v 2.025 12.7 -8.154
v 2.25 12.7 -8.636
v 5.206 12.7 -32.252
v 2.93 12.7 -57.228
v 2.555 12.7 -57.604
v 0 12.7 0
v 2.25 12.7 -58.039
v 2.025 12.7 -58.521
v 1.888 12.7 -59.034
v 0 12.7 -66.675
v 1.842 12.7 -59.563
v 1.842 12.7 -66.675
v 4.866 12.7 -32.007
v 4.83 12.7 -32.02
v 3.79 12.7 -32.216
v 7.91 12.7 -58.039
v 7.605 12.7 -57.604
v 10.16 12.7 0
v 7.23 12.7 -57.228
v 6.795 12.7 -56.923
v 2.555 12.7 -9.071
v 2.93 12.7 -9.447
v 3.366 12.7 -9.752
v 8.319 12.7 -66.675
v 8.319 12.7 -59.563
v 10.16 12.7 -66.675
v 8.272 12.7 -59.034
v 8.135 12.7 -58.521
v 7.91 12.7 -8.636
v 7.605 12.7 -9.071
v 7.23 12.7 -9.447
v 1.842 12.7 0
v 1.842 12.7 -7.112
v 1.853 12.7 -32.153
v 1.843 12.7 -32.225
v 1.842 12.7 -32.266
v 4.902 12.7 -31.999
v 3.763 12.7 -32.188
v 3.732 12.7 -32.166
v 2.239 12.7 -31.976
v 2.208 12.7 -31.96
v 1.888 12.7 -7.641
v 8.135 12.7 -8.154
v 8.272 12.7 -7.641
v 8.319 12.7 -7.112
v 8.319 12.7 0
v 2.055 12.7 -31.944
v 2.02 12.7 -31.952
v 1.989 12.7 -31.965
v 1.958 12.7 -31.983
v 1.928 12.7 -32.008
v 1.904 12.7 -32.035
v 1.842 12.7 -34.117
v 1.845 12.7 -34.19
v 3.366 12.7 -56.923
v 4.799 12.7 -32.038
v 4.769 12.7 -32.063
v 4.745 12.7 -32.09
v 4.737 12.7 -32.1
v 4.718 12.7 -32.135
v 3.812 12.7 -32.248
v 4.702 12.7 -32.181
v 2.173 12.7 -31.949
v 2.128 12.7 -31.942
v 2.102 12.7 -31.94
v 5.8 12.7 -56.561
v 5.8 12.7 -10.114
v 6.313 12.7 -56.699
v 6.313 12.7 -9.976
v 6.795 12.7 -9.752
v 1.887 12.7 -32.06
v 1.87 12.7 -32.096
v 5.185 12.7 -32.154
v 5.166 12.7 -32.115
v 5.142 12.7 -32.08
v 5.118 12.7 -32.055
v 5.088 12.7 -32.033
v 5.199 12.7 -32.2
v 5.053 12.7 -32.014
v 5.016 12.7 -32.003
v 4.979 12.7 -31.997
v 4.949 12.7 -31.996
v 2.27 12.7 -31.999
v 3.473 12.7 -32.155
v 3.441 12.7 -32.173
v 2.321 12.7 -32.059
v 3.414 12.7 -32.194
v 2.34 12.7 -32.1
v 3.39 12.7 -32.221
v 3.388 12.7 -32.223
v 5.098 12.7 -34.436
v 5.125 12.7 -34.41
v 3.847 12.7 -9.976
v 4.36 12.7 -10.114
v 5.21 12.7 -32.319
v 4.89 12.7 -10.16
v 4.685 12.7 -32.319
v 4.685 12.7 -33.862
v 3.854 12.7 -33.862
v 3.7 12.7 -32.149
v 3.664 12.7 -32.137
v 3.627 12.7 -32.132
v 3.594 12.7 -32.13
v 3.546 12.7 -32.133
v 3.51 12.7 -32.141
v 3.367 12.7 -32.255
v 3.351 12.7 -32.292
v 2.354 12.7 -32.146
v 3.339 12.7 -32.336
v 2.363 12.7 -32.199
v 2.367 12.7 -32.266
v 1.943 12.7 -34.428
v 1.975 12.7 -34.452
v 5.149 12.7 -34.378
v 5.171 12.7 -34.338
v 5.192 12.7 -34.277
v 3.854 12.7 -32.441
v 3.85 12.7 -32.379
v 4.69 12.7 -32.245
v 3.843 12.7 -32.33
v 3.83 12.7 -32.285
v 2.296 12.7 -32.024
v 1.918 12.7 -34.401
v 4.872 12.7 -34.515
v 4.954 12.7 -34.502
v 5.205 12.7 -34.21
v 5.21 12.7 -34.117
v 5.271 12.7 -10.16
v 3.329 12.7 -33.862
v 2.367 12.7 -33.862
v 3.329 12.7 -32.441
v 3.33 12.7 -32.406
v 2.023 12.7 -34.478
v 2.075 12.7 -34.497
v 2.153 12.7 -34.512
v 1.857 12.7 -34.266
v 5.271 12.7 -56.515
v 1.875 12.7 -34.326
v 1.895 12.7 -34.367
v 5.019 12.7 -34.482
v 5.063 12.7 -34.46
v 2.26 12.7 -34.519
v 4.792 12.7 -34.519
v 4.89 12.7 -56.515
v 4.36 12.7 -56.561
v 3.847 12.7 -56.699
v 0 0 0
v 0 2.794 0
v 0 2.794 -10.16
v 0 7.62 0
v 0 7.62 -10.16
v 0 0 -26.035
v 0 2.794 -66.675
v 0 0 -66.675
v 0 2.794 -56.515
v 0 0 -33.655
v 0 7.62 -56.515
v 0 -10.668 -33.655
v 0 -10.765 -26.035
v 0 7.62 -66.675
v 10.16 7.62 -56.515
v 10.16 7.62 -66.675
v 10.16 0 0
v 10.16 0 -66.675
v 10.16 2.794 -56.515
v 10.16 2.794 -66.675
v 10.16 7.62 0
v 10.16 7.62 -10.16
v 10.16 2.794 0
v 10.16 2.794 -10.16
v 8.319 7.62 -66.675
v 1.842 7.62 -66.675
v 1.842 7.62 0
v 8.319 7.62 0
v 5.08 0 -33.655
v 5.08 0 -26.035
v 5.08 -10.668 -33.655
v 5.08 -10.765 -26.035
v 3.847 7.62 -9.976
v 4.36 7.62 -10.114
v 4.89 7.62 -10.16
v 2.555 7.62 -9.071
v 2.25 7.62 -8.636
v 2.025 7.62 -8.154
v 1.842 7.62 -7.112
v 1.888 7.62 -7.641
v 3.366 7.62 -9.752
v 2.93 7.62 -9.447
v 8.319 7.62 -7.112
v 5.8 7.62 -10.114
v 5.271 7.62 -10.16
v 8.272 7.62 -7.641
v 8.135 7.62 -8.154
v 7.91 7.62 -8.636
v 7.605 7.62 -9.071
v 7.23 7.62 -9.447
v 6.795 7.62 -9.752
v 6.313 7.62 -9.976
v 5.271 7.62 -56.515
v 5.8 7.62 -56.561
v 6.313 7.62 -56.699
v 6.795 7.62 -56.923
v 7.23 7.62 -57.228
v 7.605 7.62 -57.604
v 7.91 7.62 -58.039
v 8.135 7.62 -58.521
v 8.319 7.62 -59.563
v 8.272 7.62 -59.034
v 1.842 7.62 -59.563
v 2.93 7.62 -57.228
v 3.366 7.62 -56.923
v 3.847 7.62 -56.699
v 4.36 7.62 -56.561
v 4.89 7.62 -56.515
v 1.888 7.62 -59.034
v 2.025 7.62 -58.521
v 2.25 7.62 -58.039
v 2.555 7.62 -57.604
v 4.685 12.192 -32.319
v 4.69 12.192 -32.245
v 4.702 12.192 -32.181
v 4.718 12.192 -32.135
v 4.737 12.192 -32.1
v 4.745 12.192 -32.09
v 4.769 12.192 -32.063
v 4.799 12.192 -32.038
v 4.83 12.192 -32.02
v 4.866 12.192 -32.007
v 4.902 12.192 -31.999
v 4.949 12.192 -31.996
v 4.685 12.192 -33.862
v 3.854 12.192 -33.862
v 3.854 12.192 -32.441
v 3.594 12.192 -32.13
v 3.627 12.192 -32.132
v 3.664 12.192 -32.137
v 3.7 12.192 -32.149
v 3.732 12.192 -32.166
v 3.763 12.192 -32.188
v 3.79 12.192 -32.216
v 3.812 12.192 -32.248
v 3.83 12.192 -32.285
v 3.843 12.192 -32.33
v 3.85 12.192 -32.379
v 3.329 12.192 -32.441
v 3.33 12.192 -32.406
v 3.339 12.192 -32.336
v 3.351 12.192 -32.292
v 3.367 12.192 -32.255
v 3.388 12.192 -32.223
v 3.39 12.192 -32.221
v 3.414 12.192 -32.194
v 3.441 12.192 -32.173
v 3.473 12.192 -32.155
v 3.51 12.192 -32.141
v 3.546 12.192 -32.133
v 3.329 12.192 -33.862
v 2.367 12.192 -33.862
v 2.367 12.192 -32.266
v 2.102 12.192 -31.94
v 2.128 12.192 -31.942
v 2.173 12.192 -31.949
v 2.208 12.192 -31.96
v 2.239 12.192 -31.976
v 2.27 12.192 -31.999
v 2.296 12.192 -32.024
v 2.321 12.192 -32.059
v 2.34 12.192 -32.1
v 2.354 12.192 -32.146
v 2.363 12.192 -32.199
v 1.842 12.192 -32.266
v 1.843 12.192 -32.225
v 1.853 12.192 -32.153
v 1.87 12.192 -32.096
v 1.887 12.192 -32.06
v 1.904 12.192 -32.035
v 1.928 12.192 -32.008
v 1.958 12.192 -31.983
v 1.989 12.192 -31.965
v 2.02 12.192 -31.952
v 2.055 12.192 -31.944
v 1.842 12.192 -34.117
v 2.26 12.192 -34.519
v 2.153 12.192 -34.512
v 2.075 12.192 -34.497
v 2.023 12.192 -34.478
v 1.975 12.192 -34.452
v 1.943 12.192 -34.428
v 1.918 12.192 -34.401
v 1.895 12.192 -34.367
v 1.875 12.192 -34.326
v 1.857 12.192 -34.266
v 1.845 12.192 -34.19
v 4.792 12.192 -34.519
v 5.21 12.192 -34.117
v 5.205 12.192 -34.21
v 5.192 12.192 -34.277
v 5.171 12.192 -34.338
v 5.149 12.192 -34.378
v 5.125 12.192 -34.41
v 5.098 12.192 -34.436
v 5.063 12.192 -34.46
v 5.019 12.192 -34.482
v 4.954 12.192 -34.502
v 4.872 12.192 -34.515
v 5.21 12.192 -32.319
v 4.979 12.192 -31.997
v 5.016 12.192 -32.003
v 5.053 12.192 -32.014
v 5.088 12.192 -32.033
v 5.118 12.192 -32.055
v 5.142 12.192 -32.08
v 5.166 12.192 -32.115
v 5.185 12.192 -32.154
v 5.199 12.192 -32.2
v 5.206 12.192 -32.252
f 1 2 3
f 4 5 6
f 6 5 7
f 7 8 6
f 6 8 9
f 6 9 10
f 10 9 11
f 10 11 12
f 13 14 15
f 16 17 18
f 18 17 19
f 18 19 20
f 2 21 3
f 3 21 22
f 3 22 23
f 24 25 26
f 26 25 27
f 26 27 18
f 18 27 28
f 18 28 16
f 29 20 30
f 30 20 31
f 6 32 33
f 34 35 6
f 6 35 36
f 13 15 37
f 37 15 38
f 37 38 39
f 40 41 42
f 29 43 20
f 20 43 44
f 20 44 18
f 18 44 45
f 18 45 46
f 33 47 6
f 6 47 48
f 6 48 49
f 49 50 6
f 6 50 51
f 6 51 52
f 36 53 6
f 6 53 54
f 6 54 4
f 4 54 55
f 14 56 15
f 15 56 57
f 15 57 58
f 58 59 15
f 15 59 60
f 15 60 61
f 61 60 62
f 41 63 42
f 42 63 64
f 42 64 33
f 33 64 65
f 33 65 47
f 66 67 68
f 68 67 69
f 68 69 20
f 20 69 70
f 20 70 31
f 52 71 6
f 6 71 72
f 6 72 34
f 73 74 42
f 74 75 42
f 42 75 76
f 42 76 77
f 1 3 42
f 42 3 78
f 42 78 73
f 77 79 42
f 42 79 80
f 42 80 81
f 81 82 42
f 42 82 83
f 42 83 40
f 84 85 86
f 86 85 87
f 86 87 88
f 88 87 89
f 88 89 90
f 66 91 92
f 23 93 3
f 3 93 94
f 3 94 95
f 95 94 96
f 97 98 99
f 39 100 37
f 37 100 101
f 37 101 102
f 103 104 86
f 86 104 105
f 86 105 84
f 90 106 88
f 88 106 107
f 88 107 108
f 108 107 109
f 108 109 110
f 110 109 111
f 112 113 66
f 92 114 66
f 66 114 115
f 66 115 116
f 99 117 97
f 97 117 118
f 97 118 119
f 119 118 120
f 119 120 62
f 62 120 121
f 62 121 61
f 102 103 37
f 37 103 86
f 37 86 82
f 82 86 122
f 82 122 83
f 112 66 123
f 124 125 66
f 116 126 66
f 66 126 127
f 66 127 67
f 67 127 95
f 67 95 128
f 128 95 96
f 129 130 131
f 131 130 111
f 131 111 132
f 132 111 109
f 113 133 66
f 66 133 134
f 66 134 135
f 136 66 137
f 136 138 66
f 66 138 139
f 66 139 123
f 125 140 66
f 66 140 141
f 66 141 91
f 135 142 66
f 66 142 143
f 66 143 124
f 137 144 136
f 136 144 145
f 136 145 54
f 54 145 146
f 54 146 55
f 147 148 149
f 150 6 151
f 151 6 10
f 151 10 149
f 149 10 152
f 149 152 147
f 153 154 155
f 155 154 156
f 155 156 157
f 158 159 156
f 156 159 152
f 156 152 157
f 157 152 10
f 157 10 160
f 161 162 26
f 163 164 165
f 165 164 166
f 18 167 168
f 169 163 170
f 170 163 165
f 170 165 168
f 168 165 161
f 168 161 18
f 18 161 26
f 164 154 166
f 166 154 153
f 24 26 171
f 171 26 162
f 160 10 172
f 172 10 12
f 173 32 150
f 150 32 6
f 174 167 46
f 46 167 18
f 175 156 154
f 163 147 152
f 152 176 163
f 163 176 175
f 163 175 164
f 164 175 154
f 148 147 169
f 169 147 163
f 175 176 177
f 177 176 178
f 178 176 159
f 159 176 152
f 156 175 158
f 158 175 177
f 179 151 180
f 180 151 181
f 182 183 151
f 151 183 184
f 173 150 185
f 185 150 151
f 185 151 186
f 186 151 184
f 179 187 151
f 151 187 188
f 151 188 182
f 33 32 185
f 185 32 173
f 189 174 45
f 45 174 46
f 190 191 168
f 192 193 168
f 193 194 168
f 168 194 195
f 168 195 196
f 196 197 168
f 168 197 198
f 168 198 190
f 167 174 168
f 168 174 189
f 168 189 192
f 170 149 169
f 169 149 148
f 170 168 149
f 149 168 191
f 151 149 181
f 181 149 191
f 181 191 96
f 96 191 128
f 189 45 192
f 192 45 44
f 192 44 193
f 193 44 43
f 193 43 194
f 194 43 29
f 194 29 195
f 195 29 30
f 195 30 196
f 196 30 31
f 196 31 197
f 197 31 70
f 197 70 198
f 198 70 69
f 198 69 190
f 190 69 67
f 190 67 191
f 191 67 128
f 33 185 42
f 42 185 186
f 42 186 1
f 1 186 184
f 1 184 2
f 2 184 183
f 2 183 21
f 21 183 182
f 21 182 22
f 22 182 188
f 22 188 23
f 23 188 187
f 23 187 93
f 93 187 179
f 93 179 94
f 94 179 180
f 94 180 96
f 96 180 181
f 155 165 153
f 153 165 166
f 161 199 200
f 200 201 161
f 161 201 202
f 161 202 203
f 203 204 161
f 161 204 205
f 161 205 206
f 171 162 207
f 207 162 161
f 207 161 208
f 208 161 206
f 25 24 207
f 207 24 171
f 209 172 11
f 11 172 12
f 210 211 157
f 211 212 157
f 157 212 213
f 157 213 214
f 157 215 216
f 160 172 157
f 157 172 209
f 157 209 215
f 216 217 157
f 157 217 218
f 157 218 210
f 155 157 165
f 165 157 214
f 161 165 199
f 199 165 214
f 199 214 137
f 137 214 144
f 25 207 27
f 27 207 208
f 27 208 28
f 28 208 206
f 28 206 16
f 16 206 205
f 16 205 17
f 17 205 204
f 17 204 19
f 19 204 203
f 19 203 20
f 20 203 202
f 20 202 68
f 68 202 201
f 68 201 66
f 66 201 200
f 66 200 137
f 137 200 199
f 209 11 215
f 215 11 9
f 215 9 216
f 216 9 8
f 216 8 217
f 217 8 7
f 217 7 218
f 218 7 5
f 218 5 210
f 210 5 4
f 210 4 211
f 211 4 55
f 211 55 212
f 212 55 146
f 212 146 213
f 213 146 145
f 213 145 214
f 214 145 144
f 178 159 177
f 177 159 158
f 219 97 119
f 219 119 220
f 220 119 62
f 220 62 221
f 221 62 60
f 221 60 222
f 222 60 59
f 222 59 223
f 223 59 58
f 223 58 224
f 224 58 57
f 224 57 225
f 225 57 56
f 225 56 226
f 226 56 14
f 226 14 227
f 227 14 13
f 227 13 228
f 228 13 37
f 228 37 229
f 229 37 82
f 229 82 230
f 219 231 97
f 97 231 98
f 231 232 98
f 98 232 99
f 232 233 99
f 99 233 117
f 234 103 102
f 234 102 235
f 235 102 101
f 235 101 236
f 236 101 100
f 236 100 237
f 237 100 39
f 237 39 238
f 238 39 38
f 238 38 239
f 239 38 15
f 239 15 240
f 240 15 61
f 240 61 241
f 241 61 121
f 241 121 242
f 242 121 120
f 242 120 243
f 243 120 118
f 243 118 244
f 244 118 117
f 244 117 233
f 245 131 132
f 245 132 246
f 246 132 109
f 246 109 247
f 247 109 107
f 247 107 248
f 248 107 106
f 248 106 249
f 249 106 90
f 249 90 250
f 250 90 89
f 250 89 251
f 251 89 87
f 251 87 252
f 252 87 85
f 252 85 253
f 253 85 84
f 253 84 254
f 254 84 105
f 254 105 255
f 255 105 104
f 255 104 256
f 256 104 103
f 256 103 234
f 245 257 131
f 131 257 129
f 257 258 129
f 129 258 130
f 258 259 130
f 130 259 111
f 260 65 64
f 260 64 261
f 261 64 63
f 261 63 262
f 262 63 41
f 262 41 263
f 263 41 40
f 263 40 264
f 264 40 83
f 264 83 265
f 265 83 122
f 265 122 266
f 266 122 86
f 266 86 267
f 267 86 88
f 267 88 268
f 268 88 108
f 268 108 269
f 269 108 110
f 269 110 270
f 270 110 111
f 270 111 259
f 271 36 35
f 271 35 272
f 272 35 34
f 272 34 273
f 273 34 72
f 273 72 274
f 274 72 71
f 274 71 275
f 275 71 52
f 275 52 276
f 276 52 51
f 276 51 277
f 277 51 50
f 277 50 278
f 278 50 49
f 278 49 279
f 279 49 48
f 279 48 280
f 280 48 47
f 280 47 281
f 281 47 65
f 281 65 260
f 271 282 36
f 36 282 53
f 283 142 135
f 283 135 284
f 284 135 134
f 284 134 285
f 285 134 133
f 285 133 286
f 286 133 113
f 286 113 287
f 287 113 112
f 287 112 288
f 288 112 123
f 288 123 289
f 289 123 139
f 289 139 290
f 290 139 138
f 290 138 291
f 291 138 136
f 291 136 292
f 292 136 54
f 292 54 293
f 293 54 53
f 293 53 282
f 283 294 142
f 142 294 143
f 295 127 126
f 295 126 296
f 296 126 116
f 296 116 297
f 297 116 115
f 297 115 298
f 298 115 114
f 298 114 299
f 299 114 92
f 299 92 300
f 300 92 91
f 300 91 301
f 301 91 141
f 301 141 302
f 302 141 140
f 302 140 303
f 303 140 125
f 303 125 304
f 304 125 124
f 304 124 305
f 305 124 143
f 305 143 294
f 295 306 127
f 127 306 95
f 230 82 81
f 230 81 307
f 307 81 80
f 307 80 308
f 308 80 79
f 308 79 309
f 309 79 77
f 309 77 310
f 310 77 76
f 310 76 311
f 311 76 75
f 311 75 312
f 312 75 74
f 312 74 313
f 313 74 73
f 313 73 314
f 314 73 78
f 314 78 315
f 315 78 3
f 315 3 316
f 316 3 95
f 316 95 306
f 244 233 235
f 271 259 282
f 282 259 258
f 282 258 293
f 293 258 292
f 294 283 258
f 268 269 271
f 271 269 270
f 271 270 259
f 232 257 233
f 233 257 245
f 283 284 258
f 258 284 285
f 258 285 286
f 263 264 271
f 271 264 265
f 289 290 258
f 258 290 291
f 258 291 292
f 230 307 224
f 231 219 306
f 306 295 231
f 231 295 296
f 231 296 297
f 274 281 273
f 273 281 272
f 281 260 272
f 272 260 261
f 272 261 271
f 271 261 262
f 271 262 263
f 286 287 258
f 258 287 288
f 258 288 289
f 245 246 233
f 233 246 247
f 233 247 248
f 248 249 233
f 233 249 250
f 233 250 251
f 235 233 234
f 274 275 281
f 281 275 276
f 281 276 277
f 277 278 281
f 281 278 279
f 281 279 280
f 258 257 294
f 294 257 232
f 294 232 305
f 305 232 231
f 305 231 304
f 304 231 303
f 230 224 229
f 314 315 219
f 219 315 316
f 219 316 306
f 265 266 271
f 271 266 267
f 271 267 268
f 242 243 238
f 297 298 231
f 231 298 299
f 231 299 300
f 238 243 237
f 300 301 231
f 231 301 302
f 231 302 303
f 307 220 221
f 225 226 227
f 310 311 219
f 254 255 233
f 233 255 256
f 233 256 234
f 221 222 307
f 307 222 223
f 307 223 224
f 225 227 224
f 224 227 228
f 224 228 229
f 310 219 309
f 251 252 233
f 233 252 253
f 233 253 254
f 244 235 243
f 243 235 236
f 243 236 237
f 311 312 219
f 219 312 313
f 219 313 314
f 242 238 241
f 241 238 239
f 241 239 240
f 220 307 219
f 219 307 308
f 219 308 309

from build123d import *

# Parameters (mm, degrees)
SKETCH2_W            = 10.16
SKETCH2_H            = 66.675
BOSS_EXTRUDE1_DEPTH  = 12.7
SKETCH3_W            = 5.08
SKETCH3_H            = 6.35
SKETCH3_H_2          = 1.27
BOSS_EXTRUDE2_DEPTH  = 12.7
CUT_EXTRUDE1_DEPTH   = 10.16
FILLET2_R            = 3.048
FILLET2_OF_MIRROR1_R = 3.048
CUT_EXTRUDE4_DEPTH   = 69.629958655
CUT_EXTRUDE5_DEPTH   = 0.508


with BuildPart() as part:
    # Sketch2 → Boss-Extrude1 (new body)
    with BuildSketch(Plane(origin=(0, 0, 0), x_dir=(1, 0, 0), z_dir=(0, 1, 0))):
        with Locations((5.08, 33.3375)):
            Rectangle(SKETCH2_W, SKETCH2_H)
    extrude(amount=BOSS_EXTRUDE1_DEPTH)

    # Sketch3 → Boss-Extrude2 (add)
    with BuildSketch(Plane.XZ):
        with Locations((2.54, -29.21)):
            Rectangle(SKETCH3_W, SKETCH3_H)
        with Locations((2.54, -33.02)):
            Rectangle(SKETCH3_W, SKETCH3_H_2)
    extrude(amount=BOSS_EXTRUDE2_DEPTH)

    # Sketch4 → Cut-Extrude1 (cut)
    with BuildSketch(Plane.XY):
        Polygon((0, 7.62), (1.8415, 7.62), (1.8415, 12.7), (8.3185, 12.7), (8.3185, 7.62), (10.16, 7.62), (10.16, 2.794), (0, 2.794), align=None)
    cut_extrude1 = extrude(amount=-CUT_EXTRUDE1_DEPTH, mode=Mode.SUBTRACT)

    # Fillet2
    fillet2_edges = [part.edges().sort_by_distance(p)[0] for p in [
        (1.8415, 10.16, -10.16),
        (8.3185, 10.16, -10.16),
    ]]
    fillet(fillet2_edges, radius=FILLET2_R)

    # Mirror1: Cut-Extrude1 across plane
    add(cut_extrude1.mirror(Plane.XY.offset(-33.3375)), mode=Mode.SUBTRACT)

    # Fillet2 of Mirror1
    fillet2_of_mirror1_edges = [part.edges().sort_by_distance(p)[0] for p in [
        (1.8415, 10.16, -56.515),
        (8.3185, 10.16, -56.515),
    ]]
    fillet(fillet2_of_mirror1_edges, radius=FILLET2_OF_MIRROR1_R)

    # Sketch5 → Cut-Extrude4 (cut, through all)
    with BuildSketch(Plane.ZY):
        with BuildLine():
            Line((-66.675, -12.7), (0, -12.7))
            ThreePointArc((0, -12.7), (-33.3375, -10.668), (-66.675, -12.7))
        make_face()
    extrude(amount=-CUT_EXTRUDE4_DEPTH, mode=Mode.SUBTRACT)

    # Sketch6 → Cut-Extrude5 (cut)
    with BuildSketch(Plane(origin=(0, 12.7, 0), x_dir=(1, 0, 0), z_dir=(0, 1, 0))):
        with BuildLine():
            Line((4.68525, 32.318945312), (4.68525, 33.8625))
            Line((4.68525, 33.8625), (3.854, 33.8625))
            Line((3.854, 33.8625), (3.854, 32.441308594))
            add(Edge.make_bspline(
                [(3.854, 32.441308594), (3.85306664, 32.416646376), (3.85131467, 32.370353963), (3.838922285, 32.305553354), (3.816176667, 32.250750116), (3.784435917, 32.206165385), (3.744958065, 32.171924109), (3.699953428, 32.146753392), (3.648447348, 32.132038096), (3.612331739, 32.130427428), (3.593550781, 32.129589844)],
                knots=[0, 0, 0, 0, 1.285293232, 2.412569968, 3.418386025, 4.354403319, 5.23810445, 6.120527863, 7.022630715, 8, 8, 8, 8], degree=3))
            add(Edge.make_bspline(
                [(3.593550781, 32.129589844), (3.574749437, 32.130386162), (3.538594625, 32.131917475), (3.487376628, 32.147184911), (3.441067547, 32.170468115), (3.400708139, 32.204601131), (3.368216057, 32.249315164), (3.344656766, 32.304313536), (3.331515928, 32.36960597), (3.329873624, 32.416410782), (3.329, 32.441308594)],
                knots=[0, 0, 0, 0, 0.970712631, 1.866671451, 2.742370236, 3.637940775, 4.57451605, 5.578136324, 6.711690039, 8, 8, 8, 8], degree=3))
            Line((3.329, 32.441308594), (3.329, 33.8625))
            Line((3.329, 33.8625), (2.3665, 33.8625))
            Line((2.3665, 33.8625), (2.3665, 32.265625))
            add(Edge.make_bspline(
                [(2.3665, 32.265625), (2.3655501, 32.240286731), (2.363764391, 32.192653494), (2.351476637, 32.125480995), (2.328025391, 32.068668897), (2.296333649, 32.021515895), (2.256316564, 31.985404245), (2.210438968, 31.958523559), (2.157768886, 31.943480459), (2.120952669, 31.941339483), (2.101949219, 31.940234375)],
                knots=[0, 0, 0, 0, 1.282115211, 2.410239491, 3.433544999, 4.370413449, 5.259840111, 6.137762651, 7.038767785, 8, 8, 8, 8], degree=3))
            add(Edge.make_bspline(
                [(2.101949219, 31.940234375), (2.083387815, 31.94130204), (2.047657894, 31.943357251), (1.99647574, 31.958830307), (1.951565967, 31.985590419), (1.911713519, 32.021521306), (1.879780454, 32.068510842), (1.857617463, 32.125745925), (1.843908263, 32.192526909), (1.842335714, 32.24025854), (1.8415, 32.265625)],
                knots=[0, 0, 0, 0, 0.94634305, 1.821670557, 2.697075277, 3.594139625, 4.539053153, 5.56674892, 6.706875008, 8, 8, 8, 8], degree=3))
            Line((1.8415, 32.265625), (1.8415, 34.116796875))
            add(Edge.make_bspline(
                [(1.8415, 34.116796875), (1.842466239, 34.150170648), (1.844264303, 34.212275576), (1.862680376, 34.298270852), (1.892787961, 34.369951249), (1.937907595, 34.427362709), (1.998445006, 34.469083716), (2.072427477, 34.499358574), (2.16166782, 34.515384672), (2.225621192, 34.517576552), (2.259859375, 34.51875)],
                knots=[0, 0, 0, 0, 1.189944925, 2.214356848, 3.121275872, 3.943259729, 4.783004917, 5.7166381, 6.777575619, 8, 8, 8, 8], degree=3))
            Line((2.259859375, 34.51875), (4.791890625, 34.51875))
            add(Edge.make_bspline(
                [(4.791890625, 34.51875), (4.81537587, 34.518197938), (4.859971724, 34.517149635), (4.923783566, 34.510060607), (4.980566831, 34.496281007), (5.031331248, 34.478007659), (5.075573059, 34.45409369), (5.113745466, 34.424163537), (5.144476669, 34.387304712), (5.169662361, 34.344901006), (5.187624682, 34.296110527), (5.20161385, 34.241903477), (5.208592234, 34.181233065), (5.209681005, 34.138913293), (5.21025, 34.116796875)],
                knots=[0, 0, 0, 0, 1.25760687, 2.388054849, 3.429687073, 4.379296607, 5.269270079, 6.111463577, 6.959732887, 7.823909447, 8.739278143, 9.733531743, 10.815538057, 12, 12, 12, 12], degree=3))
            Line((5.21025, 34.116796875), (5.21025, 32.318945312))
            add(Edge.make_bspline(
                [(5.21025, 32.318945312), (5.209294138, 32.293380123), (5.207496341, 32.245296836), (5.195306163, 32.177659161), (5.1719504, 32.120727753), (5.140037158, 32.074132036), (5.100434178, 32.038946704), (5.055076035, 32.013331032), (5.003864768, 31.998014319), (4.967678458, 31.99642215), (4.949117187, 31.995605469)],
                knots=[0, 0, 0, 0, 1.303543407, 2.451718649, 3.482873774, 4.417375591, 5.305837532, 6.158811619, 7.05558772, 8, 8, 8, 8], degree=3))
            add(Edge.make_bspline(
                [(4.949117187, 31.995605469), (4.930090551, 31.996389194), (4.893210146, 31.997908334), (4.841038001, 32.013538139), (4.794569462, 32.03849449), (4.754855556, 32.074202728), (4.722711227, 32.120560462), (4.700417628, 32.177846336), (4.68793119, 32.245265971), (4.686180707, 32.293369409), (4.68525, 32.318945312)],
                knots=[0, 0, 0, 0, 0.961524532, 1.863777426, 2.731626687, 3.61454628, 4.543218546, 5.563575511, 6.704588277, 8, 8, 8, 8], degree=3))
        make_face()
    extrude(amount=-CUT_EXTRUDE5_DEPTH, mode=Mode.SUBTRACT)


solid = part.part
